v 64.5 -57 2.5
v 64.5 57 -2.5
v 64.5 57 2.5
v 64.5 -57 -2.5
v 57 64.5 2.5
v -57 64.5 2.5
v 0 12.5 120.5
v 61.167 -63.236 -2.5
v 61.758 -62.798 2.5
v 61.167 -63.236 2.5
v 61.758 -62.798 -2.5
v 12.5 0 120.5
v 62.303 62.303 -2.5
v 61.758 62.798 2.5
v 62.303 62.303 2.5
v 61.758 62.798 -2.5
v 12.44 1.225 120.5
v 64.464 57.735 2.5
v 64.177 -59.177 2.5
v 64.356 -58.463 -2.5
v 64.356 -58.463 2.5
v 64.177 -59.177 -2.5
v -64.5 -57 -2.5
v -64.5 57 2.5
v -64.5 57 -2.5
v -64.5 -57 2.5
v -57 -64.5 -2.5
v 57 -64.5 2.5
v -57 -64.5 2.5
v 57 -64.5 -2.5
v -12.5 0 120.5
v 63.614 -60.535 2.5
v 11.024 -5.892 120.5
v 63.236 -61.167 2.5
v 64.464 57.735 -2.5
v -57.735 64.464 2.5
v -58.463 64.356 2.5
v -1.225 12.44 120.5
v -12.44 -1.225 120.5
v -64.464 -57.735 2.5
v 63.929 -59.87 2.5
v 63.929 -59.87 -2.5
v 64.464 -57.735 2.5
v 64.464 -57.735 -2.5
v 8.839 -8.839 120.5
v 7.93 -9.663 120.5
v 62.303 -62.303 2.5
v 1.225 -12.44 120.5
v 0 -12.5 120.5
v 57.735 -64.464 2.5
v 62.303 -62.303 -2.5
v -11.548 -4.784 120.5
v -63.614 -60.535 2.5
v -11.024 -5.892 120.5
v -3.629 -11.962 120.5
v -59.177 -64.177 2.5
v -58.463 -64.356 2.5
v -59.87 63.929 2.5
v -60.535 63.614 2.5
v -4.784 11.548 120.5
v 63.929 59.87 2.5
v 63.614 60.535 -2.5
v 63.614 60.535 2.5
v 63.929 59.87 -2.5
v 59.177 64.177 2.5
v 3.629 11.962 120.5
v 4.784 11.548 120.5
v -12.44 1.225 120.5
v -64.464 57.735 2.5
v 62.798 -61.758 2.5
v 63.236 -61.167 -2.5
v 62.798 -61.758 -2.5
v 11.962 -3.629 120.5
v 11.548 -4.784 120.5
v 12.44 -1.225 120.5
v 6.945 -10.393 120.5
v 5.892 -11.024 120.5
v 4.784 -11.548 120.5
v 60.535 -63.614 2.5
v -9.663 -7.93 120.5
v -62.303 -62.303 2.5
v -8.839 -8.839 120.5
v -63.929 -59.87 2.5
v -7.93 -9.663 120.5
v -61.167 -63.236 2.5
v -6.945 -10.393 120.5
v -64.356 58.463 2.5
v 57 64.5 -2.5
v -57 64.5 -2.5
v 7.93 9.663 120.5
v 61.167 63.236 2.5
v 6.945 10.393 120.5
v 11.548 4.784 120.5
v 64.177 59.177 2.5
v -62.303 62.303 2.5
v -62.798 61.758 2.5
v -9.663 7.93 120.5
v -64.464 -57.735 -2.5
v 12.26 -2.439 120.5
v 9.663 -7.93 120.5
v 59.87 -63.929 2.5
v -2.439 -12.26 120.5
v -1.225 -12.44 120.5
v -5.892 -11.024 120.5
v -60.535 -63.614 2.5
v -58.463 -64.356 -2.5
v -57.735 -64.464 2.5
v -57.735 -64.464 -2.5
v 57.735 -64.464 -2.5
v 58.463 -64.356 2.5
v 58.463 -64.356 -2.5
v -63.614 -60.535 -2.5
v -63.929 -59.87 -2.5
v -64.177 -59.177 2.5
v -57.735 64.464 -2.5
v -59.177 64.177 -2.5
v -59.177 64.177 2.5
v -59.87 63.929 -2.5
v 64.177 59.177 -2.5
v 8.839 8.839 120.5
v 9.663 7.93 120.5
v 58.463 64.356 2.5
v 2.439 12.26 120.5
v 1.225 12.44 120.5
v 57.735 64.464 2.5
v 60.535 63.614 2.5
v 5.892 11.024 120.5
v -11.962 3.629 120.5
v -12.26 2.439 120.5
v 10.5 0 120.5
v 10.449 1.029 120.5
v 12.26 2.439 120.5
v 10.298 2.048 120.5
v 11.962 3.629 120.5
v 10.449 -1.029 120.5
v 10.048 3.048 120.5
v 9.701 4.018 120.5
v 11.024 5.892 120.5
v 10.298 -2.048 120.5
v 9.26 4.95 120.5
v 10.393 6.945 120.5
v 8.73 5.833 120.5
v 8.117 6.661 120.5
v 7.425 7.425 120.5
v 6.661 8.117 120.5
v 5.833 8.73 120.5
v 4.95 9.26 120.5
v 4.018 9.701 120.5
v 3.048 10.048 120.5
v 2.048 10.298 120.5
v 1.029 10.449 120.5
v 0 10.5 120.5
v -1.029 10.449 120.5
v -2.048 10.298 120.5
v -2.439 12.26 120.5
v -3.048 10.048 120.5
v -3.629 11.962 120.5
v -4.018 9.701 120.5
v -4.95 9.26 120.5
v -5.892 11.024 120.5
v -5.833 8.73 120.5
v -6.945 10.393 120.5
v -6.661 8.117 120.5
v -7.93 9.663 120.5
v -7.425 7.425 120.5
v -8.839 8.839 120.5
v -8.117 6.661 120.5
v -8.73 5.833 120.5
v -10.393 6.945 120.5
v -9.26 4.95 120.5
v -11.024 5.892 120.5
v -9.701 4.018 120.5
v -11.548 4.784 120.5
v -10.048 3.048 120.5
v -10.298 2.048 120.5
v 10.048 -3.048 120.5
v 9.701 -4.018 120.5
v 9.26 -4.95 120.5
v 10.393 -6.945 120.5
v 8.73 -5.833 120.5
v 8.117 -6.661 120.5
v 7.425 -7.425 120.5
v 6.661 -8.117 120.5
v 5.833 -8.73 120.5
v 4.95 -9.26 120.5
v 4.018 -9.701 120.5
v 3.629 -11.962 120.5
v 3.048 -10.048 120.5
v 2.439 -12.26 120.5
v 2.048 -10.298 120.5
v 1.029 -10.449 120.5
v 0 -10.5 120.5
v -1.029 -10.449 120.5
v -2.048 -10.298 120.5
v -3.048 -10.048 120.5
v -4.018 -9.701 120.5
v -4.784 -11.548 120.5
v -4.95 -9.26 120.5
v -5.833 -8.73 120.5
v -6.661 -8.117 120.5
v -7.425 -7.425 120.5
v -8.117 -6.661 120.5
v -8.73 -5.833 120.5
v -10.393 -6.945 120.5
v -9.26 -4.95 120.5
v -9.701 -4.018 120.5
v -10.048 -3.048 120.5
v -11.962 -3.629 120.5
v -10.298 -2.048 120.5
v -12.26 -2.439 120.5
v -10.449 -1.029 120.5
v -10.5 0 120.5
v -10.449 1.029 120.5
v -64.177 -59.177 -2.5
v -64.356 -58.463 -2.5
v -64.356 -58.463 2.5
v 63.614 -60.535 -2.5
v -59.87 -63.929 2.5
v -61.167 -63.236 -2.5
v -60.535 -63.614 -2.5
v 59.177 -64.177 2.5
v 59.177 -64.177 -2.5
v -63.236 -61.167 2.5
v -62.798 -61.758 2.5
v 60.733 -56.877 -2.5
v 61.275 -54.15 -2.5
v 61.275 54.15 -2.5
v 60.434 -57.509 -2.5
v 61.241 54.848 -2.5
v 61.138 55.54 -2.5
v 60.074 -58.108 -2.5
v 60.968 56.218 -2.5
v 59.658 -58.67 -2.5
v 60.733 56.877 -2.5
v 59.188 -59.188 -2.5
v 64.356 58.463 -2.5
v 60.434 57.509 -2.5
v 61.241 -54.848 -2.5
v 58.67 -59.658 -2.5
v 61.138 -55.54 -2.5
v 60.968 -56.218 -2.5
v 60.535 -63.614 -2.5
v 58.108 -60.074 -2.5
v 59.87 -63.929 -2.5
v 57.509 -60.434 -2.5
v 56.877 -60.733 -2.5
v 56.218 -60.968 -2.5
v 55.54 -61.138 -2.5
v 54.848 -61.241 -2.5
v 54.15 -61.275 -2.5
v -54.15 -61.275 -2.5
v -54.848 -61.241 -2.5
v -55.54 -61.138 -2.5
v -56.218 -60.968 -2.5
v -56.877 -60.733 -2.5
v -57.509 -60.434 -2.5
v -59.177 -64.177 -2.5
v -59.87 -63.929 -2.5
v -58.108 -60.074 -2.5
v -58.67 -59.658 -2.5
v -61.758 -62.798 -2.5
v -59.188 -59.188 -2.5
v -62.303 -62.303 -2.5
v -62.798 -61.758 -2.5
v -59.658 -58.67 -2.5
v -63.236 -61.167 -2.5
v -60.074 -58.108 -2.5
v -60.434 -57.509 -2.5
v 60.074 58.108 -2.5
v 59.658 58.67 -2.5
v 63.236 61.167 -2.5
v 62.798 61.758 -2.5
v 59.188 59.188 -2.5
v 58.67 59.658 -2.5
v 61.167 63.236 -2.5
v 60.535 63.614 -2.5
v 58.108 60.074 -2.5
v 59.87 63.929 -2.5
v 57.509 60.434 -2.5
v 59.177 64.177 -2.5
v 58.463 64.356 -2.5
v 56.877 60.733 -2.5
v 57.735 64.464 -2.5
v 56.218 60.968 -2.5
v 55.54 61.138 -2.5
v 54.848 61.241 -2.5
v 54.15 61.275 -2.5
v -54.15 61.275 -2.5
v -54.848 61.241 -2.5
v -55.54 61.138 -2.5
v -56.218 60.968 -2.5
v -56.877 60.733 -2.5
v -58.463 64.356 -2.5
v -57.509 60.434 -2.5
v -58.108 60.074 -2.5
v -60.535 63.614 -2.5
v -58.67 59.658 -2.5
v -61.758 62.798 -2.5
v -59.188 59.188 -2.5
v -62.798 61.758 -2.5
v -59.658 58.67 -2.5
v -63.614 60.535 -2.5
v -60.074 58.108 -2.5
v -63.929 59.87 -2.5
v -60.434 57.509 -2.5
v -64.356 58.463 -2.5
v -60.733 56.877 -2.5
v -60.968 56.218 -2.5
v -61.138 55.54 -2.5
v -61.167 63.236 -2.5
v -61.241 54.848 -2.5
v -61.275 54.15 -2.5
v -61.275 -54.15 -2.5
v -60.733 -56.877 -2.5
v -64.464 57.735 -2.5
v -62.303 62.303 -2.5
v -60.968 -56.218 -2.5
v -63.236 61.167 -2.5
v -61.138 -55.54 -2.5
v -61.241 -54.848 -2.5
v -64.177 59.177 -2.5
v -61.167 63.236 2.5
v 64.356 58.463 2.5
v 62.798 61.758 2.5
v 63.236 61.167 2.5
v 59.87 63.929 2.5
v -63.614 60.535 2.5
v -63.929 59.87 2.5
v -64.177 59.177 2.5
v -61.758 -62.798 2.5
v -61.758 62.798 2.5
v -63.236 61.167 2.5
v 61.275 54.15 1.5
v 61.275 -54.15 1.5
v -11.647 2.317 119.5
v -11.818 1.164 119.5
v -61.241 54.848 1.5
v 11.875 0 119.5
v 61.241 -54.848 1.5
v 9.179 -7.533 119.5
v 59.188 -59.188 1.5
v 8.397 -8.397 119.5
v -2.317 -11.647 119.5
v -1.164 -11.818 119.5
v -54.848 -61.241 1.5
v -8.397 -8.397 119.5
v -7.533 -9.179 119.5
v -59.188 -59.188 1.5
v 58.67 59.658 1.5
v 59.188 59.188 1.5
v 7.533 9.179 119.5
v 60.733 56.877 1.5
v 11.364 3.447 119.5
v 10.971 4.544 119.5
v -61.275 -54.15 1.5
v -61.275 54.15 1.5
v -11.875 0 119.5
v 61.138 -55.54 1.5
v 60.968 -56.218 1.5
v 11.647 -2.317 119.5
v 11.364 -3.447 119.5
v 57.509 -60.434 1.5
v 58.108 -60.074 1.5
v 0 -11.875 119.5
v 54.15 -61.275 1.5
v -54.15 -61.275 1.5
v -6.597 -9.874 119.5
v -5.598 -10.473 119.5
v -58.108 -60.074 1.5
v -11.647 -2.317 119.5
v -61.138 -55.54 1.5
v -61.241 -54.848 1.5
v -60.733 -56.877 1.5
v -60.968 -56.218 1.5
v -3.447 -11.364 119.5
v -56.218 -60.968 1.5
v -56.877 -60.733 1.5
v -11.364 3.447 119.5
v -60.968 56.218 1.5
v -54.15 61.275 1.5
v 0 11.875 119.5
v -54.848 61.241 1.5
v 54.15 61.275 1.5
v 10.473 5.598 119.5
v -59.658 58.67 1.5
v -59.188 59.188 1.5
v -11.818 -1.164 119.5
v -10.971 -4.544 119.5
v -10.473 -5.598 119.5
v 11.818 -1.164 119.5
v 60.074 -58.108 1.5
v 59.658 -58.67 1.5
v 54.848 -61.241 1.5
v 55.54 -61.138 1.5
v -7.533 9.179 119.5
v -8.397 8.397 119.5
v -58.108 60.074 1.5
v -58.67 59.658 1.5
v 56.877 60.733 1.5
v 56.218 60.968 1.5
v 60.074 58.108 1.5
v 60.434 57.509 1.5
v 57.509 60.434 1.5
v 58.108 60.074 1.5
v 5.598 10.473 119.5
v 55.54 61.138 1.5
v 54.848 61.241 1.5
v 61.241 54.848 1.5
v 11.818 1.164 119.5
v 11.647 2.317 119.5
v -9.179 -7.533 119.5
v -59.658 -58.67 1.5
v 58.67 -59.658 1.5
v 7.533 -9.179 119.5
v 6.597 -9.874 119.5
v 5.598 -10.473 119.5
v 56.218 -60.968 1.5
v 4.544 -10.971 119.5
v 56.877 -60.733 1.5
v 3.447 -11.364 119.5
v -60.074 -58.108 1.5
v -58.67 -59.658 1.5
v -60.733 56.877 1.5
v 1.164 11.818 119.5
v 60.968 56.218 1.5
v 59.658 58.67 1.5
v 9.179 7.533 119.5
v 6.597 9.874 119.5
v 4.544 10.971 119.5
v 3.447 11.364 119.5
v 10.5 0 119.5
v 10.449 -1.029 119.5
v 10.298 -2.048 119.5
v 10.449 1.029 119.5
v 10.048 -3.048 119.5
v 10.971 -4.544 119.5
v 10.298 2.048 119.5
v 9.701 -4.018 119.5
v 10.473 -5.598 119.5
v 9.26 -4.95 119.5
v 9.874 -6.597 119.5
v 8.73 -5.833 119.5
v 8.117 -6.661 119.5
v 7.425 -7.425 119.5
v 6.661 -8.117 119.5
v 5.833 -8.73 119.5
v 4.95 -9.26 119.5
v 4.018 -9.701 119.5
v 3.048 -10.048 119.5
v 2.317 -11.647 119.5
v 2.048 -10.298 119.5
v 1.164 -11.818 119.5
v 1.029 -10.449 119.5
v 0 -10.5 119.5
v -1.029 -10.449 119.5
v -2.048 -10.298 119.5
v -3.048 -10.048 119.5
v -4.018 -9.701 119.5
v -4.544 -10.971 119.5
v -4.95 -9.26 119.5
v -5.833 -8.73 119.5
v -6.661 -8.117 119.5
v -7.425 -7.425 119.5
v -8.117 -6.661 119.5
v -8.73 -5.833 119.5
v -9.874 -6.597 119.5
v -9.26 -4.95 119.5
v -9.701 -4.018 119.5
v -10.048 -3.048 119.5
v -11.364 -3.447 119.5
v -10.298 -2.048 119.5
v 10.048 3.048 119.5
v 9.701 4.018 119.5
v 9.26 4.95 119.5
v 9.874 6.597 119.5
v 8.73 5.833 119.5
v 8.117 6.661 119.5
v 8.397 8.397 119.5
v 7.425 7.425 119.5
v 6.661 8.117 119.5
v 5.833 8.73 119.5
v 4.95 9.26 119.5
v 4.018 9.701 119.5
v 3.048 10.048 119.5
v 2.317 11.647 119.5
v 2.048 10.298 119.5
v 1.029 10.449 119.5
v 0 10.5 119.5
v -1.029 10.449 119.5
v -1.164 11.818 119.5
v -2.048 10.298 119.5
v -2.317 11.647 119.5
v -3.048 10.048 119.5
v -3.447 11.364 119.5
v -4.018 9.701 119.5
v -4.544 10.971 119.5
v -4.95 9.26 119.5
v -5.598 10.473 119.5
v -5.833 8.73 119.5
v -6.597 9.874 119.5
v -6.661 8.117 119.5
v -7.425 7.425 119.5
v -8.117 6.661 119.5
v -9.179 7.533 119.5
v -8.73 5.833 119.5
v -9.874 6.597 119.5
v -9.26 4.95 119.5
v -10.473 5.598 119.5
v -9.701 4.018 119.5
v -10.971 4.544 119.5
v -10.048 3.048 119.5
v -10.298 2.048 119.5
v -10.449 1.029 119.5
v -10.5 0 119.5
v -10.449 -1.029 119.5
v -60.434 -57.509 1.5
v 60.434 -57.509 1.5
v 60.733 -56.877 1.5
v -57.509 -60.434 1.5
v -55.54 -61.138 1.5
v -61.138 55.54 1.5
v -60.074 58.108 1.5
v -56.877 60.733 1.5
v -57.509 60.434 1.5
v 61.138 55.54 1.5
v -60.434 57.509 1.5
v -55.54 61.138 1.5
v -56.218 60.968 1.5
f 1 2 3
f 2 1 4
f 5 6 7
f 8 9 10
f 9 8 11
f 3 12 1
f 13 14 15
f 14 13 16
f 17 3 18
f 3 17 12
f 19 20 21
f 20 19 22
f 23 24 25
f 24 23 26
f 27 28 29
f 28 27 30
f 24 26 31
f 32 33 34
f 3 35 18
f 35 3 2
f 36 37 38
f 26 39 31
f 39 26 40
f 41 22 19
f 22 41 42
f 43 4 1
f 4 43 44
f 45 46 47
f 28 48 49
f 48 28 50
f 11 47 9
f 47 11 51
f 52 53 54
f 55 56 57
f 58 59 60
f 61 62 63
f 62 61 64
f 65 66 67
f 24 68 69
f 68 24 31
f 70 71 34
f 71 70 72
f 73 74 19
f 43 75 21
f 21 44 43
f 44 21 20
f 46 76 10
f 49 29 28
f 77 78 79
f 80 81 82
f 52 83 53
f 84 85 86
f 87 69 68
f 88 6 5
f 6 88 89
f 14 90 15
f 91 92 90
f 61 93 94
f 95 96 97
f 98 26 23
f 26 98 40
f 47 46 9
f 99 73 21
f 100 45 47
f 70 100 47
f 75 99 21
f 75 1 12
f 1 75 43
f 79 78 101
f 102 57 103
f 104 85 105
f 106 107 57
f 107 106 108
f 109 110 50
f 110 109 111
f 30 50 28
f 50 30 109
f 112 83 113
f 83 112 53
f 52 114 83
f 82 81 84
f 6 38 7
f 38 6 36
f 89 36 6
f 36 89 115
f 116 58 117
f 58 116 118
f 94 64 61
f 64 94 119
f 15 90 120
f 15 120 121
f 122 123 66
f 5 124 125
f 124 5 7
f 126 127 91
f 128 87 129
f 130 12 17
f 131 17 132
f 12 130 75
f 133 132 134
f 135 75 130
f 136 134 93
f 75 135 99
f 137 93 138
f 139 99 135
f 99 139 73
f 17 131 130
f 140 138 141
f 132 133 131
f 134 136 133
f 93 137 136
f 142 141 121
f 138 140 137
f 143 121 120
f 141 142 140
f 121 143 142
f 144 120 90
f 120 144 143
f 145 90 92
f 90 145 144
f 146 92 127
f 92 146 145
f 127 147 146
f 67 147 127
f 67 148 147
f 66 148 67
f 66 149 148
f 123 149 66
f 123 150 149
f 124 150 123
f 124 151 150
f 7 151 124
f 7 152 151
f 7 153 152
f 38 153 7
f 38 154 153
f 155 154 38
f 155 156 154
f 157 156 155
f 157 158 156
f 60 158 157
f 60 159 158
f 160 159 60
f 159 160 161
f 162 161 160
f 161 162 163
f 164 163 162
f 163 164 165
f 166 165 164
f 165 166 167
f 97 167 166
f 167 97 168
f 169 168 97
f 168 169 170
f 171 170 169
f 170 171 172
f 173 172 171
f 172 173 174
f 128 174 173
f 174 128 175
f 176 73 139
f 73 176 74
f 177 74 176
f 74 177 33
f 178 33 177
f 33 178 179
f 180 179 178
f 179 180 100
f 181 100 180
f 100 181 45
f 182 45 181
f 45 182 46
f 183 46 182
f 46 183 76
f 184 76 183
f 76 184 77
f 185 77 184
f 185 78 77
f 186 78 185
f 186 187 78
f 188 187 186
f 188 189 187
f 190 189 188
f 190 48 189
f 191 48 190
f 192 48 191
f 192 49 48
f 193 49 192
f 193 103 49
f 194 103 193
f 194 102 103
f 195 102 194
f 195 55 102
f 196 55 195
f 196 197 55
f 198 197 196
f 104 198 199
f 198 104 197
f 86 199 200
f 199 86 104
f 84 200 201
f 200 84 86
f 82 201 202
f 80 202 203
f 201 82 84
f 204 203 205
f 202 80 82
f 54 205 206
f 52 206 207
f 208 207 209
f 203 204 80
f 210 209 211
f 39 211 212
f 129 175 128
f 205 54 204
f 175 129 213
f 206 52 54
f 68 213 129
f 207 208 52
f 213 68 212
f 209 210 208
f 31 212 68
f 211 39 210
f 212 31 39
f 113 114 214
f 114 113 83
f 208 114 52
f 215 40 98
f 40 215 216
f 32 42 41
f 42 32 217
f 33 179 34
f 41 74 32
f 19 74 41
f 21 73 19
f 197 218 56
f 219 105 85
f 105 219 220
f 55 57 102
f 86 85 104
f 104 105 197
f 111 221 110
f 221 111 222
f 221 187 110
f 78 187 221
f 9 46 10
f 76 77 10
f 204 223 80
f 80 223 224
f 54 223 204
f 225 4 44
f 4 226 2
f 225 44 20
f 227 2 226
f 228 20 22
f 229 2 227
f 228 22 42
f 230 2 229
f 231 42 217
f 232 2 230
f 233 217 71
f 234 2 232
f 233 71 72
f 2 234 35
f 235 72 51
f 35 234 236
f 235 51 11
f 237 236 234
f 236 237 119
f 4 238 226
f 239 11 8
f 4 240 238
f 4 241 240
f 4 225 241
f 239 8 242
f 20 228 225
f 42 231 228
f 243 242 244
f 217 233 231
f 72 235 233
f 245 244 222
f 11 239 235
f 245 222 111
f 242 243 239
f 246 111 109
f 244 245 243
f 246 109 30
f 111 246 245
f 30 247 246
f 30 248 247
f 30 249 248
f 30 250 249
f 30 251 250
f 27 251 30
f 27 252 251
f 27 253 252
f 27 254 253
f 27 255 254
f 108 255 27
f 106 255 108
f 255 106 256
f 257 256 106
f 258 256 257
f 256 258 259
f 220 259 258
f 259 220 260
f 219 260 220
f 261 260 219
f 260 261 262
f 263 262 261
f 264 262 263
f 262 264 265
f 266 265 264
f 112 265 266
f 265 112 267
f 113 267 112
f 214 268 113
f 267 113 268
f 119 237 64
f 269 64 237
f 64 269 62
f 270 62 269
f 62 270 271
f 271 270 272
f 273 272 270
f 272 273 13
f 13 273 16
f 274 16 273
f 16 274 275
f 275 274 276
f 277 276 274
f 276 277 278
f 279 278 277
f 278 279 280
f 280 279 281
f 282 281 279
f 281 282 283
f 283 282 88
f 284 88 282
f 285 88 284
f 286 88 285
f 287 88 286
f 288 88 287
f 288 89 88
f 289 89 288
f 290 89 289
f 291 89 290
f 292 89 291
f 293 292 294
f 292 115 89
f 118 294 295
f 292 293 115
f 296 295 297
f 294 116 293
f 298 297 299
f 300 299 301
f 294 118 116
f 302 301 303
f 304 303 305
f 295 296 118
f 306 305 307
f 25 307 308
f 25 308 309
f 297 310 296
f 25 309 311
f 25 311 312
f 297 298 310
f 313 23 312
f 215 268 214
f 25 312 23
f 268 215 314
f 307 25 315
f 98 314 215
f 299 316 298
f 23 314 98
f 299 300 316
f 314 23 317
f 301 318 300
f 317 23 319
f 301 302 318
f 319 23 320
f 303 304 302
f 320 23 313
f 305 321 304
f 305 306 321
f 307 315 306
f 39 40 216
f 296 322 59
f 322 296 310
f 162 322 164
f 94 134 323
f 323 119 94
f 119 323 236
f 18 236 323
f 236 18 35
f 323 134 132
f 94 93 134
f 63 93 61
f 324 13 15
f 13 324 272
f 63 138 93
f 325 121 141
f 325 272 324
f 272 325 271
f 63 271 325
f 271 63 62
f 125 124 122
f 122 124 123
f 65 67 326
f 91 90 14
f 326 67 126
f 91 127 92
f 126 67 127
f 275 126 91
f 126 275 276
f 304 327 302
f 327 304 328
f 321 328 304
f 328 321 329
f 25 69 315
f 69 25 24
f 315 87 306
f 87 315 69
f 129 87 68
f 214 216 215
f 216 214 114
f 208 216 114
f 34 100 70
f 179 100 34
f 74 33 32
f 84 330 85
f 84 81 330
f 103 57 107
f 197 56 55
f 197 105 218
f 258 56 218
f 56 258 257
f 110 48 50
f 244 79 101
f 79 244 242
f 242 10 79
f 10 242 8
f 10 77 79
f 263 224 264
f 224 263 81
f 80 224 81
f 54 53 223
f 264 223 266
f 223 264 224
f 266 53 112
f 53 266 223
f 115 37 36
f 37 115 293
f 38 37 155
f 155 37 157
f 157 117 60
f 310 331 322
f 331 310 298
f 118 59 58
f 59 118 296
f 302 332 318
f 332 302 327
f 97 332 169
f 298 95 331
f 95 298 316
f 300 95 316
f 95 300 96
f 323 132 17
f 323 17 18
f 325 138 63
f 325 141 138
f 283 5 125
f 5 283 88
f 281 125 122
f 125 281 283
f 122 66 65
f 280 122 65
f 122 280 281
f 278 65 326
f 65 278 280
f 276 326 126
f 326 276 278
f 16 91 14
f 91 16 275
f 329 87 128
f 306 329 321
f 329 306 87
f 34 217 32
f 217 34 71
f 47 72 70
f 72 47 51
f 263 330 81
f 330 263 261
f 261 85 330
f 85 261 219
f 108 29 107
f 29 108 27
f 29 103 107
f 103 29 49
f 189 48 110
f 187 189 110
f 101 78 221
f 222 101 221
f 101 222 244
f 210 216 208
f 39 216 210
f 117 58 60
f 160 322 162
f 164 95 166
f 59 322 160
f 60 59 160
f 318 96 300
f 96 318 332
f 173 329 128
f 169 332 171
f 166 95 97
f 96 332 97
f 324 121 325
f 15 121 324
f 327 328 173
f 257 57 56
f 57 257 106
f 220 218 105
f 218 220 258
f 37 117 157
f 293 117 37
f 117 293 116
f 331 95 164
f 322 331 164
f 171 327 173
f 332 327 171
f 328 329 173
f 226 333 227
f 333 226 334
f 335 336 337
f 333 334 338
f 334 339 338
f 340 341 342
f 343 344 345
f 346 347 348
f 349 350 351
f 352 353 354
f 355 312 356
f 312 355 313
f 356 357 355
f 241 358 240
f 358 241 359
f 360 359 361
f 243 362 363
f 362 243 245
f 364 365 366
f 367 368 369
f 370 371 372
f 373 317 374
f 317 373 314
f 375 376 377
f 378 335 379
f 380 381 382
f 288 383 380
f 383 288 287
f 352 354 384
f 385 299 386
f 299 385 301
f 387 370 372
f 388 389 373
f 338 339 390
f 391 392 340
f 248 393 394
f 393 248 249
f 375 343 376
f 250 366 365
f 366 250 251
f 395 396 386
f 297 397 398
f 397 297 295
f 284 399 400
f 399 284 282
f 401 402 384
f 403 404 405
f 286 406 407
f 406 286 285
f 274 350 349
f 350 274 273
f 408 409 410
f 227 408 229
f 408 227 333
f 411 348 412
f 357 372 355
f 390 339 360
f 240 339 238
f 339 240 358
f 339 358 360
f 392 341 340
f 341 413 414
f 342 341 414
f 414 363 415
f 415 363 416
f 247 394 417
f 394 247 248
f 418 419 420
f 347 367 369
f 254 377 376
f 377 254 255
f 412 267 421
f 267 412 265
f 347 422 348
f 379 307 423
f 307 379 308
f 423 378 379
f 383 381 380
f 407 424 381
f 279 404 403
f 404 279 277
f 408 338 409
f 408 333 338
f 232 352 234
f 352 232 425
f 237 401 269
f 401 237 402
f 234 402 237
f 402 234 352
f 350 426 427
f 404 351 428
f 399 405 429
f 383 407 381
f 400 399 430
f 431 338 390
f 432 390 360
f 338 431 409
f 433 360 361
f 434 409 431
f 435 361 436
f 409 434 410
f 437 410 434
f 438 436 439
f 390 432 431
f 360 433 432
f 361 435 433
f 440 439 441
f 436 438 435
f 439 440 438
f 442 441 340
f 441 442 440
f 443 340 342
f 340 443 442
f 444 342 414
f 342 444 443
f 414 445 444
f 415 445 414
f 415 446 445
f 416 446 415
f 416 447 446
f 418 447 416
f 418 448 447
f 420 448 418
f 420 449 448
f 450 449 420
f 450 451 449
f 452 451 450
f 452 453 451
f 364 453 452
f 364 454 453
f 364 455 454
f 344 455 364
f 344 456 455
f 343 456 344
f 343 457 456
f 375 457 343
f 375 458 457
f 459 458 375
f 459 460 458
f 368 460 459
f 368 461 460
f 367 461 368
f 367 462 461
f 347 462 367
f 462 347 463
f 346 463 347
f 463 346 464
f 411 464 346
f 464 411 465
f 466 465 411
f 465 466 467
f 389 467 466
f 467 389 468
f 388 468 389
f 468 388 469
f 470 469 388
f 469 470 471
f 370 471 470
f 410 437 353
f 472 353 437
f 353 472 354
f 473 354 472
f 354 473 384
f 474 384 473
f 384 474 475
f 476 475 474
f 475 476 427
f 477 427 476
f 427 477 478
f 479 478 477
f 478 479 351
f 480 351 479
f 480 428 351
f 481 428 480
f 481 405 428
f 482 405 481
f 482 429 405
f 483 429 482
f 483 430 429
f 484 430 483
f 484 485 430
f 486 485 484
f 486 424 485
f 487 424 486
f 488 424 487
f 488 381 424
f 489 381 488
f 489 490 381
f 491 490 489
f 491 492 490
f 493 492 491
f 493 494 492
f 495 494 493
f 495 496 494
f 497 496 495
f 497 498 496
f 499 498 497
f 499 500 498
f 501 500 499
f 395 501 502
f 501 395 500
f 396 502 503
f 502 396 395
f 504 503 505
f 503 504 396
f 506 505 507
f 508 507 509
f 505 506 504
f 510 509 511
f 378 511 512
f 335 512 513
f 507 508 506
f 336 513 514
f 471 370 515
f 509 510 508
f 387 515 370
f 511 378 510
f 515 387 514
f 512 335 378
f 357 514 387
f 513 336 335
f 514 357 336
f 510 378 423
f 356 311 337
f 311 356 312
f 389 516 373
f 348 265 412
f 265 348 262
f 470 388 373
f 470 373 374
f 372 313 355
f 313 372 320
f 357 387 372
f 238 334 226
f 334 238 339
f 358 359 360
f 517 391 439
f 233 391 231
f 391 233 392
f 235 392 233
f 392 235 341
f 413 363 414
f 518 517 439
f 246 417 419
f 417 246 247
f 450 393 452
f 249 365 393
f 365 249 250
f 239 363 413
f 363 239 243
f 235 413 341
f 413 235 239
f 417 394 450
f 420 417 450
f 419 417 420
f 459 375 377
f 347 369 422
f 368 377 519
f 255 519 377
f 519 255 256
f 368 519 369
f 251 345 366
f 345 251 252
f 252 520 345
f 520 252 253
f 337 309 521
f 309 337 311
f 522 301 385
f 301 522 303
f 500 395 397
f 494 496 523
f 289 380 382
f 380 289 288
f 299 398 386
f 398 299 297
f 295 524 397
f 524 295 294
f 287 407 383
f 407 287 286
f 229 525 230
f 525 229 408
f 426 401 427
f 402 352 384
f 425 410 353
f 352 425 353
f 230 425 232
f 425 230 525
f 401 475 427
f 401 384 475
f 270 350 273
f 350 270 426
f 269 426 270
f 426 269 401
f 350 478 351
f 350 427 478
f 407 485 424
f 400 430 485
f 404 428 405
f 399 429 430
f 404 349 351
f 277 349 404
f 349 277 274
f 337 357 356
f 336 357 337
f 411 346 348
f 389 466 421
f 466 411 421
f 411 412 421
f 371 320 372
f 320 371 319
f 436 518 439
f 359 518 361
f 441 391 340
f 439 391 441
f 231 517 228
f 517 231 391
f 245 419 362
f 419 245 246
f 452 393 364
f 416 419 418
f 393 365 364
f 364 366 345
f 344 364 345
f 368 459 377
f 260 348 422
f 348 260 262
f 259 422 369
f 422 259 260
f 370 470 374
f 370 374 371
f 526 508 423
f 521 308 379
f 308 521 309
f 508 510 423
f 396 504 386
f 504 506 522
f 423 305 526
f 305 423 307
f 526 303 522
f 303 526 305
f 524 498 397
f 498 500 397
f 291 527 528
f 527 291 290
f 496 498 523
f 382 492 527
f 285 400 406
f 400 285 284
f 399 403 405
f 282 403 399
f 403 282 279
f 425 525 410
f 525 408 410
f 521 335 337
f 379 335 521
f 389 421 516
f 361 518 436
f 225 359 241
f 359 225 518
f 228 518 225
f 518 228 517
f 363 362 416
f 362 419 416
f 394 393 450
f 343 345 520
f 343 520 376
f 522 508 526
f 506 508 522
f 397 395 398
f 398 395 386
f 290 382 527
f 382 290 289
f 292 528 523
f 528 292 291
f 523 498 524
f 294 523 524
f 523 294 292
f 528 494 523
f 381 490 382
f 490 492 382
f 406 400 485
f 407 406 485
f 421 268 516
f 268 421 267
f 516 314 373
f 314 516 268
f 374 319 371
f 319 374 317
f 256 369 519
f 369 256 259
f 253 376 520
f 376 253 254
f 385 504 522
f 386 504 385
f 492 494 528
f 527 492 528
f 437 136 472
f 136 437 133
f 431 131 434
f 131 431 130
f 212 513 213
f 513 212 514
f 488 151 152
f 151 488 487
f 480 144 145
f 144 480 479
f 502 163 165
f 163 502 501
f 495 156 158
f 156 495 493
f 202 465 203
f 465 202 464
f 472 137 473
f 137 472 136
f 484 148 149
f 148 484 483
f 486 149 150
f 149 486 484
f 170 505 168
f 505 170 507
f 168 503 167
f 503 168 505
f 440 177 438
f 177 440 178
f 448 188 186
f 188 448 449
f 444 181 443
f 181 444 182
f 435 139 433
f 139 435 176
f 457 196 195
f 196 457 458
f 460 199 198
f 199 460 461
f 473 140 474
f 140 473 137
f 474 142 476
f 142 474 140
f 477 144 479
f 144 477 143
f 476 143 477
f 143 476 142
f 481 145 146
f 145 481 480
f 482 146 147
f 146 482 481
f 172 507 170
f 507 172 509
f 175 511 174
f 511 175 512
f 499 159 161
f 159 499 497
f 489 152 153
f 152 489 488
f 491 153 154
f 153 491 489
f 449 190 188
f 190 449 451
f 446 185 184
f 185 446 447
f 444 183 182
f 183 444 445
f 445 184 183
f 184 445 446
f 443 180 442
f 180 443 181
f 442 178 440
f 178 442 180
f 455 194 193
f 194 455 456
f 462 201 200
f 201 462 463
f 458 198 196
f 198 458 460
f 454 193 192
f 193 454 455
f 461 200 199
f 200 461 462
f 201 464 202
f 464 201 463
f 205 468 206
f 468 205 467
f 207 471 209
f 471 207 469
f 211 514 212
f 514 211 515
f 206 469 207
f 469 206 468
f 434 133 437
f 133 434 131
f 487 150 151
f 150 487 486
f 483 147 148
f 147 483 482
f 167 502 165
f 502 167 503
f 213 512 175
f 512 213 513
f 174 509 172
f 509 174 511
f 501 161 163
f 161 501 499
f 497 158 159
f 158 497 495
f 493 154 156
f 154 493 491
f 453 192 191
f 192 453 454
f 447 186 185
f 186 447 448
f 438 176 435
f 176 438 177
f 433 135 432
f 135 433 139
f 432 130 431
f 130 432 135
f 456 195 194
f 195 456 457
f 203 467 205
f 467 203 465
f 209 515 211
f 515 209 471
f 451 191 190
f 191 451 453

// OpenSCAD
echo("Работа Газмагомадова Ислама");
$fn=64;
round_corner = 15;

//translate([0, 0, 10])
//color("green")
//cube([129, 129, 1], center = true);

difference(){
    nozzle_kit();
    translate([0,0,120])
    cylinder(d=25-4, h=15, center = true);
}

module nozzle_kit() {
    difference() {
        nozzle();
        translate([0,0,-1])
        scale([0.95, 0.95, 1])
        color("red")
        nozzle();
    }
}
module nozzle(){
    hull() {
        frame_square();
        translate([0, 0, 120])
        frame_ring();
    }
}

//hull() {
//    frame_square();
//    translate([0, 0, 120])
//    cylinder(d=25, h=1, center = true);
//}

module frame_ring() {
    difference() {
        cylinder(d=25, h=1, center = true);
        color("red")
        cylinder(d=25-6, h=6, center = true);
    }
}

module frame_square() {
    difference() {
        square_plate();
        translate([0, 0, 1])
        color("red")
        scale([0.95, 0.95, 4])
        square_plate();
    }
}

module square_plate(){ 
    hull() {
        //cube([129-round_corner, 129, 1], center = true);
        translate([129/2-round_corner/2, 129/2-round_corner/2, 0])
        color("red")
        cylinder(d = round_corner, h = 5, center = true);
        
        mirror([1, 0, 0])
        translate([129/2-round_corner/2, 129/2-round_corner/2, 0])
        color("red")
        cylinder(d = round_corner, h = 5, center = true);
        
        mirror([0, 1, 0])
        translate([129/2-round_corner/2, 129/2-round_corner/2, 0])
        color("red")
        cylinder(d = round_corner, h = 5, center = true);
        
        mirror([1, 1, 0])
        translate([129/2-round_corner/2, 129/2-round_corner/2, 0])
        color("red")
        cylinder(d = round_corner, h = 5, center = true);
    }
}

////hull() {
//    square(129, center = true);
//    translate([0, 0, 120])
//    circle(25);
////}
